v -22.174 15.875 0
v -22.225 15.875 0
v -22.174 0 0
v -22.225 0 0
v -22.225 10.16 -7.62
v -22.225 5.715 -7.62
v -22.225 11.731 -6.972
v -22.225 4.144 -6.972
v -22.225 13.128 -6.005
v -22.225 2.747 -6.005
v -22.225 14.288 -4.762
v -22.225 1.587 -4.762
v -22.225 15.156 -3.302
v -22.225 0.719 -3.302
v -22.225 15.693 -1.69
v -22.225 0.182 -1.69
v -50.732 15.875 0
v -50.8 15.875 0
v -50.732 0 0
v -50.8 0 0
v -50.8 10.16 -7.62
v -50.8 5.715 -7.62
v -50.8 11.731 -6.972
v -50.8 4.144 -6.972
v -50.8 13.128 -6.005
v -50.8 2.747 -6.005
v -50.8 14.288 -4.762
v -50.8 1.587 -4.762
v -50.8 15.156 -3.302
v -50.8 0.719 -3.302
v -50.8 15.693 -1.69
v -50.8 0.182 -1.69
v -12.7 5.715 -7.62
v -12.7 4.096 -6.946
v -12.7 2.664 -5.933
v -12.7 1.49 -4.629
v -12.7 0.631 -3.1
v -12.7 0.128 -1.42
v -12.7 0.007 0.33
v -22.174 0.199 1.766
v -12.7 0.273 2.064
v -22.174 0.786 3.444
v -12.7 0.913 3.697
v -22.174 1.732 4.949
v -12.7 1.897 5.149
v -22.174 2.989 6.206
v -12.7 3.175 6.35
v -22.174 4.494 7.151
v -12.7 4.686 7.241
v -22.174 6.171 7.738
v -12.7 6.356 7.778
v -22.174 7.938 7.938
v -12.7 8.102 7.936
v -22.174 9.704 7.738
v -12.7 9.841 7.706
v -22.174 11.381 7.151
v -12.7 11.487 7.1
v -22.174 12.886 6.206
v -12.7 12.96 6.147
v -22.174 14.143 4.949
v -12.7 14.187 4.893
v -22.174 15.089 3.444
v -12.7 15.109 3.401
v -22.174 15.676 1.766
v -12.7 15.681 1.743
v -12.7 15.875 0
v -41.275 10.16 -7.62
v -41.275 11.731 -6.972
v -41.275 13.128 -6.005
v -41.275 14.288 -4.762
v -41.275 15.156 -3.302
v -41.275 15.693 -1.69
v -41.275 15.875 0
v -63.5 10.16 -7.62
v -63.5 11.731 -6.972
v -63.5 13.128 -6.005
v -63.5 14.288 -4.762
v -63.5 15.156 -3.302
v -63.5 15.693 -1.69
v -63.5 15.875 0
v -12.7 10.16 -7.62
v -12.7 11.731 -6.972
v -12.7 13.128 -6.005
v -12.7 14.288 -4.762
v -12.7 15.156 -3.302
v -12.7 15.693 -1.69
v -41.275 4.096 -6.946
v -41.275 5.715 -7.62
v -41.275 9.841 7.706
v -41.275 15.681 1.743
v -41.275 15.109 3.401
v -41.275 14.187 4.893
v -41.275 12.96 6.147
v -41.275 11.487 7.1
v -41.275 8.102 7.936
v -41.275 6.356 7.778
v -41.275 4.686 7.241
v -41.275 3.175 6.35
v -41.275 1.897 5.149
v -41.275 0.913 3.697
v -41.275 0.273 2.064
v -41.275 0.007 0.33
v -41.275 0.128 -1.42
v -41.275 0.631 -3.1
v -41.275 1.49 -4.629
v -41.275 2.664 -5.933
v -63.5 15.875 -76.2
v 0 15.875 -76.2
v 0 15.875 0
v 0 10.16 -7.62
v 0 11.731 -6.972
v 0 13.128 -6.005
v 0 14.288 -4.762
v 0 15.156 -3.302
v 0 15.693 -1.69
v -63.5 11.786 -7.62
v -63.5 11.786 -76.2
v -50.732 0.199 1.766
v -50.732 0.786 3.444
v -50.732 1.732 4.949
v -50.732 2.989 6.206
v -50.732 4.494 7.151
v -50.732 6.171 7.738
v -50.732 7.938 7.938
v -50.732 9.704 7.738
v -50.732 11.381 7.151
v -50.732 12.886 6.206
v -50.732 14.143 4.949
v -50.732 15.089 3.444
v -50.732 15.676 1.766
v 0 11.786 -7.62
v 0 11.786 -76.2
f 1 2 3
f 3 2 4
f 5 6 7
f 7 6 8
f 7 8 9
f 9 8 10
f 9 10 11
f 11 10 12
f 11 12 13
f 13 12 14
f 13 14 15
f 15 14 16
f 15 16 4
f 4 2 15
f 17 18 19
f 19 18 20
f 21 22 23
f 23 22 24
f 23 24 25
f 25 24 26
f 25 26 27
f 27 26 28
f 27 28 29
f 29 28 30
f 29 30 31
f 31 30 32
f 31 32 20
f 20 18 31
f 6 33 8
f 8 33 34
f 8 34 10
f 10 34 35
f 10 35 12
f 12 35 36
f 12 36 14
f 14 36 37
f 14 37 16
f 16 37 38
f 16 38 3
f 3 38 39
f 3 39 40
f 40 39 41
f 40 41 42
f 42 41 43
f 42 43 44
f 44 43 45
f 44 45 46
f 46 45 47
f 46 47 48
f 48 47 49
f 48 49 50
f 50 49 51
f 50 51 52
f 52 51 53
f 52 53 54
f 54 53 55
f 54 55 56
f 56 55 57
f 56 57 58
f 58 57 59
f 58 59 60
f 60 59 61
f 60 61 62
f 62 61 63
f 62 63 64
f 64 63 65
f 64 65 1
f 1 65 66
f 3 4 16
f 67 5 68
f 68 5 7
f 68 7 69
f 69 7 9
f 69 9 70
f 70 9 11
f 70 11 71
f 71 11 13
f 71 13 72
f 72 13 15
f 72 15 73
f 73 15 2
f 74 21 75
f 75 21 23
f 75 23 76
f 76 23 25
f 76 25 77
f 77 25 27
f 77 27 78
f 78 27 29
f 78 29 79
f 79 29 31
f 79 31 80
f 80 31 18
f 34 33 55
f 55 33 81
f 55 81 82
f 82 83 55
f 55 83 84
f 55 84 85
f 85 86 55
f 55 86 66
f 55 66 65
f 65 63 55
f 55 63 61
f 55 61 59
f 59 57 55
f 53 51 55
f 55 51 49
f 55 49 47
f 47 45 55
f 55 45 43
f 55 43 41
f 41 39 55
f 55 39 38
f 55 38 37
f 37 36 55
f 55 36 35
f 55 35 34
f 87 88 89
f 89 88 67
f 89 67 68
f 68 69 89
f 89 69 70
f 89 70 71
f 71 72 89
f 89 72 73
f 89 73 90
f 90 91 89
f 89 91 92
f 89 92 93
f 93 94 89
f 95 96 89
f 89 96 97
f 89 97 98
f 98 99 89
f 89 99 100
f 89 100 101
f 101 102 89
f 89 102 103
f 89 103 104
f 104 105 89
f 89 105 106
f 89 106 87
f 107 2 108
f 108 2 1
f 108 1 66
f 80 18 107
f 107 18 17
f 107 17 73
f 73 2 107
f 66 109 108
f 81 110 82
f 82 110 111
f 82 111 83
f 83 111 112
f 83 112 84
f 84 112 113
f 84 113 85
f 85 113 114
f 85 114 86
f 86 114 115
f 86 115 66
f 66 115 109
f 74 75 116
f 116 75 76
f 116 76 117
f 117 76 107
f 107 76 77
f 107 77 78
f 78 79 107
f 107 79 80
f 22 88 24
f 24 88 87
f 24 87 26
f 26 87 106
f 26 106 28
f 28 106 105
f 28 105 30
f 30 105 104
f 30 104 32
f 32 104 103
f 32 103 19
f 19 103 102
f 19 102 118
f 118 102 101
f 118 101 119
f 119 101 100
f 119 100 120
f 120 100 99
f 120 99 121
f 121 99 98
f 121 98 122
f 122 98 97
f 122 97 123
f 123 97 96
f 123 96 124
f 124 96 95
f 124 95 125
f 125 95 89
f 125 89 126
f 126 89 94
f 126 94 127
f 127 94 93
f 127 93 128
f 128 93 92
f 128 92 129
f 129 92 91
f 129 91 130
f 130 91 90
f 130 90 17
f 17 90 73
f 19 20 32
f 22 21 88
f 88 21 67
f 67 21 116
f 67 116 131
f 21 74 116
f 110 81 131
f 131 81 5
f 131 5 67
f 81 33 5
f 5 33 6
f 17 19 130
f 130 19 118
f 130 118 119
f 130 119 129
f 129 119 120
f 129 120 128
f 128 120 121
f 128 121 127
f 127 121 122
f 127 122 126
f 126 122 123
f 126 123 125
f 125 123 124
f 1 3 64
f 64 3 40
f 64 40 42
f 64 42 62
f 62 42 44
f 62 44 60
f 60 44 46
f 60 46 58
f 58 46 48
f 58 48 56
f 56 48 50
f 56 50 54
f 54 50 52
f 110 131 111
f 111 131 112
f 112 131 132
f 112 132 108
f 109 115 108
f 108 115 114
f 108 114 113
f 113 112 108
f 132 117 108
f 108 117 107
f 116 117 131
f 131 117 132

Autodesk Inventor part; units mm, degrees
ref_plane "XZ Plane" through (0, 0, 0) normal (0, 1, 0) x (-1, 0, 0)
ref_plane "XY Plane" through (0, 0, 0) normal (0, 0, 1) x (1, 0, 0)
sketch "Sketch1" plane through (0, 0, 0) normal (0, 1, 0) x (-1, 0, 0)
  line L0 (0, 0) -> (63.5, 0)
  line L1 (63.5, 0) -> (63.5, -76.2)
  line L2 (63.5, -76.2) -> (0, -76.2)
  line L3 (0, -76.2) -> (0, 0)
  dimension "d0" = 63.5
  dimension "d1" = 76.2
extrude "Extrusion1" add sketch "Sketch1" along normal blind 15.875
sketch "Sketch2" plane through (0, 0, 0) normal (1, 0, 0) x (0, 0, -1)
  line L0 (76.2, 0) -> (0, 0) projected
  line L1 (0, 0) -> (0, 15.875) projected
  circle A0 centre (0, 7.9375) radius 7.9375
  line L2 (76.2, 15.875) -> (0, 15.875) projected
extrude "Extrusion2" cut sketch "Sketch2" against normal blind 12.7 contours L1 A0 picked at (1.148, 10.3213)
ref_plane "Work Plane1" through (-31.75, 0, 0) normal (1, 0, 0) x (0, 1, 0)
mirror "Mirror1" about plane through (-31.75, 0, 0) normal (1, 0, 0) of "Extrusion2"
sketch "Sketch3" plane through (-12.7, 0, 0) normal (0, 0, 1) x (1, 0, 0)
  line L0 (12.7, 15.875) -> (-50.8, 15.875) projected
  line L1 (12.7, 0) -> (-50.8, 0) projected
  line L2 (-28.575, 15.875) -> (-9.525, 15.875)
  line L3 (-9.525, 15.875) -> (-9.525, 7.9375)
  line L4 (-28.575, 7.9375) -> (-28.575, 15.875)
  line L5 (0, 0) -> (0, 15.875) projected
  line L6 (-28.575, 7.9375) -> (-9.525, 7.9375)
  line L7 (-32.6367, 7.9375) -> (-5.0262, 7.9375)
  point P0 (-9.525, 15.875)
  dimension "d8" = 19.05
  dimension "d9" = 9.525
revolve "Revolution1" cut sketch "Sketch3" angle 360 about axis through (-45.3367, 7.9375, 0) along (1, 0, 0)
sketch "Sketch4" plane through (-12.7, 0, 0) normal (0, 0, 1) x (1, 0, 0)
  line L0 (12.7, 15.875) -> (-50.8, 15.875) projected
  line L1 (0, 0) -> (0, 15.875) projected
  line L2 (-9.4737, 15.875) -> (0, 15.875)
  line L3 (0, 15.875) -> (0, 7.9375)
  line L4 (0, 7.9375) -> (-9.4737, 7.9375)
  line L5 (-9.4737, 7.9375) -> (-9.4737, 15.875)
  line L6 (-28.575, 15.875) -> (-28.575, 0) projected
  line L7 (-38.032, 15.875) -> (-28.575, 15.875)
  line L8 (-28.575, 15.875) -> (-28.575, 7.9375)
  line L9 (-28.575, 7.9375) -> (-38.032, 7.9375)
  line L10 (-38.032, 7.9375) -> (-38.032, 15.875)
  line L11 (-38.032, 7.9375) -> (0, 7.9375)
  point P0 (12.7, 0)
revolve "Revolution2" add sketch "Sketch4" angle 360 about axis through (-50.732, 7.9375, 0) along (1, 0, 0) contours L1 L4 L5 L0 | L6 L9 L10 L0
sketch "Sketch5" plane through (0, 0, -76.2) normal (1, 0, 0) x (0, 0, -1)
  line L0 (0, 0) -> (0, 15.875) projected
  line L1 (0, 0) -> (-63.4859, 0)
  line L2 (-63.4859, 0) -> (-63.4859, -0.635)
  line L3 (-63.4859, -0.635) -> (0, -0.635)
  line L4 (0, -0.635) -> (0, 0)
  line L5 (-76.2, 15.875) -> (0, 15.875) projected
  point P0 (-76.2, 0)
  dimension "d12" = 16.51
extrude "Extrusion3" add sketch "Sketch5" against normal up to surface (63.5 mm away)
sketch "Sketch6" plane through (0, 7.9375, 0) normal (1, 0, 0) x (0, 0, -1)
  line L0 (12.7141, -8.5725) -> (76.2, -8.5725) projected
  line L1 (76.2, -8.5725) -> (7.62, -8.5725)
  line L2 (7.62, -8.5725) -> (7.62, 3.8481)
  line L3 (7.62, 3.8481) -> (76.2, 3.8481)
  line L4 (76.2, 3.8481) -> (76.2, -8.5725)
  line L5 (0, 7.9375) -> (76.2, 7.9375) projected
  point P0 (0, -7.9375)
  dimension "d15" = 4.0894
  dimension "d16" = 68.58
extrude "Extrusion4" cut sketch "Sketch6" against normal through all
sketch "Sketch7" plane through (0, 0, 0) normal (1, 0, 0) x (0, 0, -1)
  arc A0 (0, 0) -> (7.62, 5.715) centre (0, 7.9375) ccw projected
  line L0 (7.62, 5.715) -> (7.62, 0)
  line L1 (7.62, 0) -> (0, 0)
  arc A1 (0, 0) -> (7.62, 5.715) centre (0, 7.9375) ccw
extrude "Extrusion5" cut sketch "Sketch7" against normal through all
properties part number "knuckle plate hinge 2"
